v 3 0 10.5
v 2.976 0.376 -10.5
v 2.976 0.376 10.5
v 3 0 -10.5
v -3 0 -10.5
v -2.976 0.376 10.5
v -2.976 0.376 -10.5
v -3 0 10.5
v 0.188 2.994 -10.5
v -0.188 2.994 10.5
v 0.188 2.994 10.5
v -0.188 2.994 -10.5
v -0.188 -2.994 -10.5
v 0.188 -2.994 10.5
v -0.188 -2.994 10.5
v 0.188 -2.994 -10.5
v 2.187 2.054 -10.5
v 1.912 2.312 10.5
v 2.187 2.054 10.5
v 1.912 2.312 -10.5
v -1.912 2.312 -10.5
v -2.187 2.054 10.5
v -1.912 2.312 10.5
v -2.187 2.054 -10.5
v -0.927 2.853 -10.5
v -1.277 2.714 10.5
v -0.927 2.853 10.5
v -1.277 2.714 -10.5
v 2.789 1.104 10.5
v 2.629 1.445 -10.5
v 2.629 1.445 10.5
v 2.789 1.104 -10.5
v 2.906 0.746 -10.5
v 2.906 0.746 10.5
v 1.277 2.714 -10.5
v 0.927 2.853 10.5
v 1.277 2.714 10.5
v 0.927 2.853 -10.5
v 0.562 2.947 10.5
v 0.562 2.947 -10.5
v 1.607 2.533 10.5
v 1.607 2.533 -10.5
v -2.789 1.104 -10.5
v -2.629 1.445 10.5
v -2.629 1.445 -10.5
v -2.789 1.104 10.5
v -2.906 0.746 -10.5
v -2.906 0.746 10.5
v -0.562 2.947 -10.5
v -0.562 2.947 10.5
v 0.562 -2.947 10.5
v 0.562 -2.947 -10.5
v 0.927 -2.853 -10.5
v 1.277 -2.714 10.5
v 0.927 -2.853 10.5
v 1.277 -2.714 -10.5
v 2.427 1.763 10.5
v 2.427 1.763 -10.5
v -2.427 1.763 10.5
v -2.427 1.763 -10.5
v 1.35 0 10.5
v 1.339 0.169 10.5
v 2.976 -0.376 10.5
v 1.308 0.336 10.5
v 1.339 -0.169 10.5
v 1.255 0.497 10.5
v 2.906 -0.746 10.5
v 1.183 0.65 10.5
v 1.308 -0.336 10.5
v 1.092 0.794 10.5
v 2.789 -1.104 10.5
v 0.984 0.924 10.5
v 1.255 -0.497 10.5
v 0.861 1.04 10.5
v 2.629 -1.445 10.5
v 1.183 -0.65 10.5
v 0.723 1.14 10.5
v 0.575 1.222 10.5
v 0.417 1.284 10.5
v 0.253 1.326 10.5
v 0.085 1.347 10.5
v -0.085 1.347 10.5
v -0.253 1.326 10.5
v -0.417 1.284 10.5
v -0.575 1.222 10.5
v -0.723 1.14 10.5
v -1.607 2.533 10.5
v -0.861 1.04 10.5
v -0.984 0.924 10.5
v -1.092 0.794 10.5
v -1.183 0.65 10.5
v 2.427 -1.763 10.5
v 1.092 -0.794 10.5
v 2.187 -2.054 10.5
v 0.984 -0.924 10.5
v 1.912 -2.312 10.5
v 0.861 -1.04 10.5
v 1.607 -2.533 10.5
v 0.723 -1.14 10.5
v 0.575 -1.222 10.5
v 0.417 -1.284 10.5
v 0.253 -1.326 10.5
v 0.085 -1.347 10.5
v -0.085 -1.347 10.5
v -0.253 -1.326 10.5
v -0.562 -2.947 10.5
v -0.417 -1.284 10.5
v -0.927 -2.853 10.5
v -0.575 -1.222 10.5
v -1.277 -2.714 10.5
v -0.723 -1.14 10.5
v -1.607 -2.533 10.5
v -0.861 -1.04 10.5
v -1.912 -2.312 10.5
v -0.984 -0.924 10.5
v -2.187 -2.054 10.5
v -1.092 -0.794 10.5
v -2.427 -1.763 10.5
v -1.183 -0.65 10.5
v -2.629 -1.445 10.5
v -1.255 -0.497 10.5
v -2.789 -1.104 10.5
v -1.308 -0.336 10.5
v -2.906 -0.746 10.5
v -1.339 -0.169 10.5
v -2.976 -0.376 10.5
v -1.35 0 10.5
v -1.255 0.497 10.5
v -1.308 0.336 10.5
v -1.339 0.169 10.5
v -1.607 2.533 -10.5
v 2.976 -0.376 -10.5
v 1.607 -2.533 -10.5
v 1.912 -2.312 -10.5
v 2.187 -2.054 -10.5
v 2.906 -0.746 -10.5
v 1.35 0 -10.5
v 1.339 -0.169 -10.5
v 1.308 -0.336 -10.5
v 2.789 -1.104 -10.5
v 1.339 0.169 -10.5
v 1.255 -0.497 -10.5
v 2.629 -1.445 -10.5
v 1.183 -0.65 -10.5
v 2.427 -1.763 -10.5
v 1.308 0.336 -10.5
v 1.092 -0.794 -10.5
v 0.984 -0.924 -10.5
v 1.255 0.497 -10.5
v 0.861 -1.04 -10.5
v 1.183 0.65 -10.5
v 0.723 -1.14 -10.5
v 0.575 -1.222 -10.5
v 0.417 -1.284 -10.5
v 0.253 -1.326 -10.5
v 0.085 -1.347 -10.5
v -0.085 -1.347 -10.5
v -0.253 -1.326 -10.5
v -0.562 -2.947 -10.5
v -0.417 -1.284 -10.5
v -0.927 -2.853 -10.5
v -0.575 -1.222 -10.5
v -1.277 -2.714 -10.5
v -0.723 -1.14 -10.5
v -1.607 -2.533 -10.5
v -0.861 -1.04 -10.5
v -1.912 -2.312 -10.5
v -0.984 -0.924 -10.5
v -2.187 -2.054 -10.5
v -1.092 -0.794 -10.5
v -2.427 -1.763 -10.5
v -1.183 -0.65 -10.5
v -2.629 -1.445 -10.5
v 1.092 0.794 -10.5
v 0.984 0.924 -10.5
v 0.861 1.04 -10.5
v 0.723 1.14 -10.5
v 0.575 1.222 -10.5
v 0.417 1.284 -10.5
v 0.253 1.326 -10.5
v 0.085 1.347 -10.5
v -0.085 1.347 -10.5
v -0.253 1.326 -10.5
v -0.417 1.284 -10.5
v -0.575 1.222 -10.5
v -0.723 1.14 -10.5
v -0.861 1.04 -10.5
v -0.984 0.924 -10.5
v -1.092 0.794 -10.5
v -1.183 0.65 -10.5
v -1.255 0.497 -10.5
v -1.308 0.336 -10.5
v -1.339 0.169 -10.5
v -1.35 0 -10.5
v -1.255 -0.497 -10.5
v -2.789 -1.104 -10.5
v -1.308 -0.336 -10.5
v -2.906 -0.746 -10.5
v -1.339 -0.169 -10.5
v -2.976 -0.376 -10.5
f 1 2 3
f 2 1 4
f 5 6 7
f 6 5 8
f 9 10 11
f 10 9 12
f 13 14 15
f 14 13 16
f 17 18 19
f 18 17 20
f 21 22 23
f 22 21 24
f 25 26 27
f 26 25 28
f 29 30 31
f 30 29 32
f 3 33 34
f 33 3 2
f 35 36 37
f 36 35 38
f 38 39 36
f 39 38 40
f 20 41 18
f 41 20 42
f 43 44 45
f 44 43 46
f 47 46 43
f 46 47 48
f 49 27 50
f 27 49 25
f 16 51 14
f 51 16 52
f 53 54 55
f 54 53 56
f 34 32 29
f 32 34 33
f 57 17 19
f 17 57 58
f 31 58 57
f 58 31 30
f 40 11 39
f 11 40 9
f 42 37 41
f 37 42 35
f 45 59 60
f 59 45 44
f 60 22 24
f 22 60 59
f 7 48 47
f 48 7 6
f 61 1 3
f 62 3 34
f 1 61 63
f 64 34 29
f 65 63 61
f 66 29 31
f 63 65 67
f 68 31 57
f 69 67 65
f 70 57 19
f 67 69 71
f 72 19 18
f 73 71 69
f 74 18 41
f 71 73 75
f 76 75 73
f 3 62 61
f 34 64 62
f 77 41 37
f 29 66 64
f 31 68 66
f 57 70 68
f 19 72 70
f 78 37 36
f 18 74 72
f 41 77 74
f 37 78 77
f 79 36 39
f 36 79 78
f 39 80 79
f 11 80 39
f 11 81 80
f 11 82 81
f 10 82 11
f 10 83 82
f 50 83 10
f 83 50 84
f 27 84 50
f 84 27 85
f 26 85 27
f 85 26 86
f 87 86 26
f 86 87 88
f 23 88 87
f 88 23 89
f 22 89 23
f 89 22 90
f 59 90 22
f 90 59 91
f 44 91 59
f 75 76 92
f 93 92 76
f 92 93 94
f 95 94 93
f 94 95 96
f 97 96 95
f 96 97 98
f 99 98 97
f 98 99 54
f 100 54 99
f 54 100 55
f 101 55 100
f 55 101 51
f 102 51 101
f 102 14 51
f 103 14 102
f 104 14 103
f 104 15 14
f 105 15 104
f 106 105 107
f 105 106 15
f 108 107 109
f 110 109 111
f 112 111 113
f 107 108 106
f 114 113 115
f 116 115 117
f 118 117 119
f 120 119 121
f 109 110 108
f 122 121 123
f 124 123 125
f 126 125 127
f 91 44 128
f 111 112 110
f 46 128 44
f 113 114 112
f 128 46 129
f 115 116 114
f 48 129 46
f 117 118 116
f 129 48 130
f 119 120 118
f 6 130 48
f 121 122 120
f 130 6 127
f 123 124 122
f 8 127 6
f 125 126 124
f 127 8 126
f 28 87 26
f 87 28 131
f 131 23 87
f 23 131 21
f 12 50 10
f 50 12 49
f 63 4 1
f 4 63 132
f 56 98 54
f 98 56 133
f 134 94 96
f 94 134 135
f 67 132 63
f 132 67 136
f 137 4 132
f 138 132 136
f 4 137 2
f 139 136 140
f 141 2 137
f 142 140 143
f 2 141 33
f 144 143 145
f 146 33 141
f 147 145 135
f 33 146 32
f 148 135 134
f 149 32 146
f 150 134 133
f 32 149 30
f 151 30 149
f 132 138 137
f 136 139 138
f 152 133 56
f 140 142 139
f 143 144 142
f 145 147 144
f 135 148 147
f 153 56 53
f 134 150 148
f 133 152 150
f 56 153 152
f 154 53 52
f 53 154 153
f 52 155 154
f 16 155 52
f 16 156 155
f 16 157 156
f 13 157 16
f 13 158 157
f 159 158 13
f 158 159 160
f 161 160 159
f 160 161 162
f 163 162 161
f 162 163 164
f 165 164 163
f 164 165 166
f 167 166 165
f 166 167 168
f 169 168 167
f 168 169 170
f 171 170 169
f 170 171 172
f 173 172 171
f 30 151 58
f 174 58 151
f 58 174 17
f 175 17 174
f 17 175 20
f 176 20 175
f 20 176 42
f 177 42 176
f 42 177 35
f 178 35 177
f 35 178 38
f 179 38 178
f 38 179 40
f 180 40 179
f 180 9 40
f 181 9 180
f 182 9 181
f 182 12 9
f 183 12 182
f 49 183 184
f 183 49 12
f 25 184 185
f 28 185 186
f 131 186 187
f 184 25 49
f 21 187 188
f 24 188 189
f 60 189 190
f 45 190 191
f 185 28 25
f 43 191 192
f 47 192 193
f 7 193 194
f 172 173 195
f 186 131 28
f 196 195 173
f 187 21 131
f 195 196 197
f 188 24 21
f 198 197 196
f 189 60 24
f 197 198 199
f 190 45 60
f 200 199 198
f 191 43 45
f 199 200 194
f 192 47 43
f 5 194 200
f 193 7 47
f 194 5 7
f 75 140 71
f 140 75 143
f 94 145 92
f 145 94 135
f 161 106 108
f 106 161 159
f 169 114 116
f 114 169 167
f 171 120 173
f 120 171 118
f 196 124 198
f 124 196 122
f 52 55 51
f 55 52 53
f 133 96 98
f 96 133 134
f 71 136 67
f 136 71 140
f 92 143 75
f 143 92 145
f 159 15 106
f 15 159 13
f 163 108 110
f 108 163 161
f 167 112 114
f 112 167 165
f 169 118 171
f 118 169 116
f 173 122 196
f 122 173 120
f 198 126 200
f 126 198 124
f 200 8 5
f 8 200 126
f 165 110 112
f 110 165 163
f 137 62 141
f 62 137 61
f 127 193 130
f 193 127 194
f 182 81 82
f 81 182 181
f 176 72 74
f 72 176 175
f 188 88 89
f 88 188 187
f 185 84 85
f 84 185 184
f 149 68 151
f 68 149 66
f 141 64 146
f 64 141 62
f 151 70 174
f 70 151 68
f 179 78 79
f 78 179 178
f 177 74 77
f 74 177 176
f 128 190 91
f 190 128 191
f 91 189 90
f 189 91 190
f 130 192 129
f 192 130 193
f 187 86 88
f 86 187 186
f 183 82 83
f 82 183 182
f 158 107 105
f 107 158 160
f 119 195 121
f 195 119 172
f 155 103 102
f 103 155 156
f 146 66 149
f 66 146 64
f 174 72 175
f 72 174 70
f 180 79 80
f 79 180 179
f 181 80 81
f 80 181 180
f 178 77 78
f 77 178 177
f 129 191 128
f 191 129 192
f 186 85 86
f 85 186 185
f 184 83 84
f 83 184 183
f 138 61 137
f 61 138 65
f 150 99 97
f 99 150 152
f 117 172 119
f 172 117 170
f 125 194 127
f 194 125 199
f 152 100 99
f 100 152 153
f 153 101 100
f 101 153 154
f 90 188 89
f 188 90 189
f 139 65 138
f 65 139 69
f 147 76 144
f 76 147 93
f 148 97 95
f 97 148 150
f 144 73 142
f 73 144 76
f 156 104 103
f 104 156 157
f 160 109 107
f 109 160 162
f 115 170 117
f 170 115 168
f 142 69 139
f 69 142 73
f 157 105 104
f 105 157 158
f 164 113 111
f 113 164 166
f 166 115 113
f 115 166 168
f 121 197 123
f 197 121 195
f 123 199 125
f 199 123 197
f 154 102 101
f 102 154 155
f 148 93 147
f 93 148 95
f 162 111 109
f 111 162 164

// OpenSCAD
$fn = 50;


difference() {
	union() {
		translate(v = [0, 0, -10.5000000000]) {
			cylinder(h = 21, r = 3.0000000000);
		}
	}
	union() {
		translate(v = [0, 0, -100.0000000000]) {
			cylinder(h = 200, r = 1.3500000000);
		}
	}
}
